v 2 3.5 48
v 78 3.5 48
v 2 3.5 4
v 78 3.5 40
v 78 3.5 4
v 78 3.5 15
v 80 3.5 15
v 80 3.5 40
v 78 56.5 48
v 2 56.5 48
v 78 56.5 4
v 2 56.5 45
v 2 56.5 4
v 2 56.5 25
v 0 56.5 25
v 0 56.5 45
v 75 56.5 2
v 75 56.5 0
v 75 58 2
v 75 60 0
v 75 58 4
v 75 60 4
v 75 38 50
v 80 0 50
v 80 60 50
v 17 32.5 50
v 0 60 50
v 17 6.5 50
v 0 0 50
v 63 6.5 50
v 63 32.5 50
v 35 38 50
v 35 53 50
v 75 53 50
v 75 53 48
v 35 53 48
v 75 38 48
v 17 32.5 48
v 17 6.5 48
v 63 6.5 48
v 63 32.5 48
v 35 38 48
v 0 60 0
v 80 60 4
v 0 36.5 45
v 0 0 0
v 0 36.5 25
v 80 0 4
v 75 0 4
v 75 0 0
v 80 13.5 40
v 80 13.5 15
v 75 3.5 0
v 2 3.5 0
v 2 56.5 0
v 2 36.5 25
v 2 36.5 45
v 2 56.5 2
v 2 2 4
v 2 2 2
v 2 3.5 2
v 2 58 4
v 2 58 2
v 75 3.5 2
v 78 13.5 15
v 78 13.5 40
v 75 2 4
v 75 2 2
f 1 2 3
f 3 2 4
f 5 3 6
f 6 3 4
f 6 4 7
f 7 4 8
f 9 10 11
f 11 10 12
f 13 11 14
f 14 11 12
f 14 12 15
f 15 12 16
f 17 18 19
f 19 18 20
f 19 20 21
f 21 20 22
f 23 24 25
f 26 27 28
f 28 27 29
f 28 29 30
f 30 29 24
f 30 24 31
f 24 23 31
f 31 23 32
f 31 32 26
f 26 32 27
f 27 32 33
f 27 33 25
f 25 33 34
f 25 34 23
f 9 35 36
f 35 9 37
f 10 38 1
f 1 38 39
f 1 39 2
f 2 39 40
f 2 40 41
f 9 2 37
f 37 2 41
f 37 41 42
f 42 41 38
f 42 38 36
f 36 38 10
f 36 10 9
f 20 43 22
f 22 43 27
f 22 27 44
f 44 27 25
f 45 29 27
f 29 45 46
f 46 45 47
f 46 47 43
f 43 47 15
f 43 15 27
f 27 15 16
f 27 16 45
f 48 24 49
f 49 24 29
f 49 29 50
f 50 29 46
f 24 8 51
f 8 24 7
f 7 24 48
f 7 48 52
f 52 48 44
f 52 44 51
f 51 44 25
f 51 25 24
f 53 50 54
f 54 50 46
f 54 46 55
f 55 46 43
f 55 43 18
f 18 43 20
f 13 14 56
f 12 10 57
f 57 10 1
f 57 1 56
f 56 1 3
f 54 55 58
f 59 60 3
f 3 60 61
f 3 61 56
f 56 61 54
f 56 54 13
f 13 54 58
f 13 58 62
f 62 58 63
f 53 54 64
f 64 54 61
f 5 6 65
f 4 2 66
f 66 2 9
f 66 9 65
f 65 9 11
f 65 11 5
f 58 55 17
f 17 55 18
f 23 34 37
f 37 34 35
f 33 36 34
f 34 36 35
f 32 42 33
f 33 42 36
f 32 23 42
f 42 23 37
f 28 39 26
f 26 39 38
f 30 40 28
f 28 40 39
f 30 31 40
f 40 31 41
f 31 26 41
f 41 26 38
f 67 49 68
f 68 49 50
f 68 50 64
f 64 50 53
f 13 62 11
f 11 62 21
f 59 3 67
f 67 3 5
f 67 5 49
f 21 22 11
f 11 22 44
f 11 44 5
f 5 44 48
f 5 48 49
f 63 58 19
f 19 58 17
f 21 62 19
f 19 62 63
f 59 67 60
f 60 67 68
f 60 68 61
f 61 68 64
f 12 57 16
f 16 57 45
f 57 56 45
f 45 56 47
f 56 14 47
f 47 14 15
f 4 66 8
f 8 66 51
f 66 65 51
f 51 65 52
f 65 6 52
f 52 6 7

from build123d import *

# Parameters (mm, degrees)
SKETCH_1_W          = 80
SKETCH_1_H          = 60
EXTRUDE_1_DEPTH     = 50
SKETCH_1_3_W        = 76
SKETCH_1_3_H        = 53
CUT_EXTRUDE_1_DEPTH = 48
SKETCH_1_4_W        = 40
SKETCH_1_4_H        = 15
CUT_EXTRUDE_2_DEPTH = 50
SKETCH_1_5_W        = 46
SKETCH_1_5_H        = 26
CUT_EXTRUDE_3_DEPTH = 50
CUT_EXTRUDE_5_DEPTH = 4
CUT_EXTRUDE_START   = 2
SKETCH_1_9_W        = 73
SKETCH_1_9_H        = 56
CUT_EXTRUDE_6_DEPTH = 2
SKETCH_2_W          = 20
SKETCH_2_H          = 20
CUT_EXTRUDE_7_DEPTH = 2
SKETCH_3_W          = 25
SKETCH_3_H          = 10
CUT_EXTRUDE_8_DEPTH = 2


with BuildPart() as part:
    # 草图1 → 凸台-拉伸1 (new body)
    with BuildSketch(Plane.XY):
        with Locations((40, 30)):
            Rectangle(SKETCH_1_W, SKETCH_1_H)
    extrude(amount=EXTRUDE_1_DEPTH)

    # 草图1<3> → 切除-拉伸1 (cut)
    with BuildSketch(Plane.XY):
        with Locations((40, 30)):
            Rectangle(SKETCH_1_3_W, SKETCH_1_3_H)
    extrude(amount=CUT_EXTRUDE_1_DEPTH, mode=Mode.SUBTRACT)

    # 草图1<4> → 切除-拉伸2 (cut)
    with BuildSketch(Plane.XY):
        with Locations((55, 45.5)):
            Rectangle(SKETCH_1_4_W, SKETCH_1_4_H)
    extrude(amount=CUT_EXTRUDE_2_DEPTH, mode=Mode.SUBTRACT)

    # 草图1<5> → 切除-拉伸3 (cut)
    with BuildSketch(Plane.XY):
        with Locations((40, 19.5)):
            Rectangle(SKETCH_1_5_W, SKETCH_1_5_H)
    extrude(amount=CUT_EXTRUDE_3_DEPTH, mode=Mode.SUBTRACT)

    # 草图1<7> → 切除-拉伸5 (cut)
    with BuildSketch(Plane.XY):
        Polygon((75, 2), (75, 0), (80, 0), (80, 60), (75, 60), (75, 58), (75, 56.5), (78, 56.5), (78, 3.5), (75, 3.5), align=None)
    extrude(amount=CUT_EXTRUDE_5_DEPTH, mode=Mode.SUBTRACT)

    # 草图1<9> → 切除-拉伸6 (cut)
    with BuildSketch(Plane.XY.offset(CUT_EXTRUDE_START)):
        with Locations((38.5, 30)):
            Rectangle(SKETCH_1_9_W, SKETCH_1_9_H)
    extrude(amount=CUT_EXTRUDE_6_DEPTH, mode=Mode.SUBTRACT)

    # 草图2 → 切除-拉伸7 (cut)
    with BuildSketch(Plane.ZY):
        with Locations((35, 46.5)):
            Rectangle(SKETCH_2_W, SKETCH_2_H)
    extrude(amount=-CUT_EXTRUDE_7_DEPTH, mode=Mode.SUBTRACT)

    # 草图3 → 切除-拉伸8 (cut)
    with BuildSketch(Plane(origin=(80, 0, 0), x_dir=(0, 0, -1), z_dir=(1, 0, 0))):
        with Locations((-27.5, 8.5)):
            Rectangle(SKETCH_3_W, SKETCH_3_H)
    extrude(amount=-CUT_EXTRUDE_8_DEPTH, mode=Mode.SUBTRACT)


solid = part.part
